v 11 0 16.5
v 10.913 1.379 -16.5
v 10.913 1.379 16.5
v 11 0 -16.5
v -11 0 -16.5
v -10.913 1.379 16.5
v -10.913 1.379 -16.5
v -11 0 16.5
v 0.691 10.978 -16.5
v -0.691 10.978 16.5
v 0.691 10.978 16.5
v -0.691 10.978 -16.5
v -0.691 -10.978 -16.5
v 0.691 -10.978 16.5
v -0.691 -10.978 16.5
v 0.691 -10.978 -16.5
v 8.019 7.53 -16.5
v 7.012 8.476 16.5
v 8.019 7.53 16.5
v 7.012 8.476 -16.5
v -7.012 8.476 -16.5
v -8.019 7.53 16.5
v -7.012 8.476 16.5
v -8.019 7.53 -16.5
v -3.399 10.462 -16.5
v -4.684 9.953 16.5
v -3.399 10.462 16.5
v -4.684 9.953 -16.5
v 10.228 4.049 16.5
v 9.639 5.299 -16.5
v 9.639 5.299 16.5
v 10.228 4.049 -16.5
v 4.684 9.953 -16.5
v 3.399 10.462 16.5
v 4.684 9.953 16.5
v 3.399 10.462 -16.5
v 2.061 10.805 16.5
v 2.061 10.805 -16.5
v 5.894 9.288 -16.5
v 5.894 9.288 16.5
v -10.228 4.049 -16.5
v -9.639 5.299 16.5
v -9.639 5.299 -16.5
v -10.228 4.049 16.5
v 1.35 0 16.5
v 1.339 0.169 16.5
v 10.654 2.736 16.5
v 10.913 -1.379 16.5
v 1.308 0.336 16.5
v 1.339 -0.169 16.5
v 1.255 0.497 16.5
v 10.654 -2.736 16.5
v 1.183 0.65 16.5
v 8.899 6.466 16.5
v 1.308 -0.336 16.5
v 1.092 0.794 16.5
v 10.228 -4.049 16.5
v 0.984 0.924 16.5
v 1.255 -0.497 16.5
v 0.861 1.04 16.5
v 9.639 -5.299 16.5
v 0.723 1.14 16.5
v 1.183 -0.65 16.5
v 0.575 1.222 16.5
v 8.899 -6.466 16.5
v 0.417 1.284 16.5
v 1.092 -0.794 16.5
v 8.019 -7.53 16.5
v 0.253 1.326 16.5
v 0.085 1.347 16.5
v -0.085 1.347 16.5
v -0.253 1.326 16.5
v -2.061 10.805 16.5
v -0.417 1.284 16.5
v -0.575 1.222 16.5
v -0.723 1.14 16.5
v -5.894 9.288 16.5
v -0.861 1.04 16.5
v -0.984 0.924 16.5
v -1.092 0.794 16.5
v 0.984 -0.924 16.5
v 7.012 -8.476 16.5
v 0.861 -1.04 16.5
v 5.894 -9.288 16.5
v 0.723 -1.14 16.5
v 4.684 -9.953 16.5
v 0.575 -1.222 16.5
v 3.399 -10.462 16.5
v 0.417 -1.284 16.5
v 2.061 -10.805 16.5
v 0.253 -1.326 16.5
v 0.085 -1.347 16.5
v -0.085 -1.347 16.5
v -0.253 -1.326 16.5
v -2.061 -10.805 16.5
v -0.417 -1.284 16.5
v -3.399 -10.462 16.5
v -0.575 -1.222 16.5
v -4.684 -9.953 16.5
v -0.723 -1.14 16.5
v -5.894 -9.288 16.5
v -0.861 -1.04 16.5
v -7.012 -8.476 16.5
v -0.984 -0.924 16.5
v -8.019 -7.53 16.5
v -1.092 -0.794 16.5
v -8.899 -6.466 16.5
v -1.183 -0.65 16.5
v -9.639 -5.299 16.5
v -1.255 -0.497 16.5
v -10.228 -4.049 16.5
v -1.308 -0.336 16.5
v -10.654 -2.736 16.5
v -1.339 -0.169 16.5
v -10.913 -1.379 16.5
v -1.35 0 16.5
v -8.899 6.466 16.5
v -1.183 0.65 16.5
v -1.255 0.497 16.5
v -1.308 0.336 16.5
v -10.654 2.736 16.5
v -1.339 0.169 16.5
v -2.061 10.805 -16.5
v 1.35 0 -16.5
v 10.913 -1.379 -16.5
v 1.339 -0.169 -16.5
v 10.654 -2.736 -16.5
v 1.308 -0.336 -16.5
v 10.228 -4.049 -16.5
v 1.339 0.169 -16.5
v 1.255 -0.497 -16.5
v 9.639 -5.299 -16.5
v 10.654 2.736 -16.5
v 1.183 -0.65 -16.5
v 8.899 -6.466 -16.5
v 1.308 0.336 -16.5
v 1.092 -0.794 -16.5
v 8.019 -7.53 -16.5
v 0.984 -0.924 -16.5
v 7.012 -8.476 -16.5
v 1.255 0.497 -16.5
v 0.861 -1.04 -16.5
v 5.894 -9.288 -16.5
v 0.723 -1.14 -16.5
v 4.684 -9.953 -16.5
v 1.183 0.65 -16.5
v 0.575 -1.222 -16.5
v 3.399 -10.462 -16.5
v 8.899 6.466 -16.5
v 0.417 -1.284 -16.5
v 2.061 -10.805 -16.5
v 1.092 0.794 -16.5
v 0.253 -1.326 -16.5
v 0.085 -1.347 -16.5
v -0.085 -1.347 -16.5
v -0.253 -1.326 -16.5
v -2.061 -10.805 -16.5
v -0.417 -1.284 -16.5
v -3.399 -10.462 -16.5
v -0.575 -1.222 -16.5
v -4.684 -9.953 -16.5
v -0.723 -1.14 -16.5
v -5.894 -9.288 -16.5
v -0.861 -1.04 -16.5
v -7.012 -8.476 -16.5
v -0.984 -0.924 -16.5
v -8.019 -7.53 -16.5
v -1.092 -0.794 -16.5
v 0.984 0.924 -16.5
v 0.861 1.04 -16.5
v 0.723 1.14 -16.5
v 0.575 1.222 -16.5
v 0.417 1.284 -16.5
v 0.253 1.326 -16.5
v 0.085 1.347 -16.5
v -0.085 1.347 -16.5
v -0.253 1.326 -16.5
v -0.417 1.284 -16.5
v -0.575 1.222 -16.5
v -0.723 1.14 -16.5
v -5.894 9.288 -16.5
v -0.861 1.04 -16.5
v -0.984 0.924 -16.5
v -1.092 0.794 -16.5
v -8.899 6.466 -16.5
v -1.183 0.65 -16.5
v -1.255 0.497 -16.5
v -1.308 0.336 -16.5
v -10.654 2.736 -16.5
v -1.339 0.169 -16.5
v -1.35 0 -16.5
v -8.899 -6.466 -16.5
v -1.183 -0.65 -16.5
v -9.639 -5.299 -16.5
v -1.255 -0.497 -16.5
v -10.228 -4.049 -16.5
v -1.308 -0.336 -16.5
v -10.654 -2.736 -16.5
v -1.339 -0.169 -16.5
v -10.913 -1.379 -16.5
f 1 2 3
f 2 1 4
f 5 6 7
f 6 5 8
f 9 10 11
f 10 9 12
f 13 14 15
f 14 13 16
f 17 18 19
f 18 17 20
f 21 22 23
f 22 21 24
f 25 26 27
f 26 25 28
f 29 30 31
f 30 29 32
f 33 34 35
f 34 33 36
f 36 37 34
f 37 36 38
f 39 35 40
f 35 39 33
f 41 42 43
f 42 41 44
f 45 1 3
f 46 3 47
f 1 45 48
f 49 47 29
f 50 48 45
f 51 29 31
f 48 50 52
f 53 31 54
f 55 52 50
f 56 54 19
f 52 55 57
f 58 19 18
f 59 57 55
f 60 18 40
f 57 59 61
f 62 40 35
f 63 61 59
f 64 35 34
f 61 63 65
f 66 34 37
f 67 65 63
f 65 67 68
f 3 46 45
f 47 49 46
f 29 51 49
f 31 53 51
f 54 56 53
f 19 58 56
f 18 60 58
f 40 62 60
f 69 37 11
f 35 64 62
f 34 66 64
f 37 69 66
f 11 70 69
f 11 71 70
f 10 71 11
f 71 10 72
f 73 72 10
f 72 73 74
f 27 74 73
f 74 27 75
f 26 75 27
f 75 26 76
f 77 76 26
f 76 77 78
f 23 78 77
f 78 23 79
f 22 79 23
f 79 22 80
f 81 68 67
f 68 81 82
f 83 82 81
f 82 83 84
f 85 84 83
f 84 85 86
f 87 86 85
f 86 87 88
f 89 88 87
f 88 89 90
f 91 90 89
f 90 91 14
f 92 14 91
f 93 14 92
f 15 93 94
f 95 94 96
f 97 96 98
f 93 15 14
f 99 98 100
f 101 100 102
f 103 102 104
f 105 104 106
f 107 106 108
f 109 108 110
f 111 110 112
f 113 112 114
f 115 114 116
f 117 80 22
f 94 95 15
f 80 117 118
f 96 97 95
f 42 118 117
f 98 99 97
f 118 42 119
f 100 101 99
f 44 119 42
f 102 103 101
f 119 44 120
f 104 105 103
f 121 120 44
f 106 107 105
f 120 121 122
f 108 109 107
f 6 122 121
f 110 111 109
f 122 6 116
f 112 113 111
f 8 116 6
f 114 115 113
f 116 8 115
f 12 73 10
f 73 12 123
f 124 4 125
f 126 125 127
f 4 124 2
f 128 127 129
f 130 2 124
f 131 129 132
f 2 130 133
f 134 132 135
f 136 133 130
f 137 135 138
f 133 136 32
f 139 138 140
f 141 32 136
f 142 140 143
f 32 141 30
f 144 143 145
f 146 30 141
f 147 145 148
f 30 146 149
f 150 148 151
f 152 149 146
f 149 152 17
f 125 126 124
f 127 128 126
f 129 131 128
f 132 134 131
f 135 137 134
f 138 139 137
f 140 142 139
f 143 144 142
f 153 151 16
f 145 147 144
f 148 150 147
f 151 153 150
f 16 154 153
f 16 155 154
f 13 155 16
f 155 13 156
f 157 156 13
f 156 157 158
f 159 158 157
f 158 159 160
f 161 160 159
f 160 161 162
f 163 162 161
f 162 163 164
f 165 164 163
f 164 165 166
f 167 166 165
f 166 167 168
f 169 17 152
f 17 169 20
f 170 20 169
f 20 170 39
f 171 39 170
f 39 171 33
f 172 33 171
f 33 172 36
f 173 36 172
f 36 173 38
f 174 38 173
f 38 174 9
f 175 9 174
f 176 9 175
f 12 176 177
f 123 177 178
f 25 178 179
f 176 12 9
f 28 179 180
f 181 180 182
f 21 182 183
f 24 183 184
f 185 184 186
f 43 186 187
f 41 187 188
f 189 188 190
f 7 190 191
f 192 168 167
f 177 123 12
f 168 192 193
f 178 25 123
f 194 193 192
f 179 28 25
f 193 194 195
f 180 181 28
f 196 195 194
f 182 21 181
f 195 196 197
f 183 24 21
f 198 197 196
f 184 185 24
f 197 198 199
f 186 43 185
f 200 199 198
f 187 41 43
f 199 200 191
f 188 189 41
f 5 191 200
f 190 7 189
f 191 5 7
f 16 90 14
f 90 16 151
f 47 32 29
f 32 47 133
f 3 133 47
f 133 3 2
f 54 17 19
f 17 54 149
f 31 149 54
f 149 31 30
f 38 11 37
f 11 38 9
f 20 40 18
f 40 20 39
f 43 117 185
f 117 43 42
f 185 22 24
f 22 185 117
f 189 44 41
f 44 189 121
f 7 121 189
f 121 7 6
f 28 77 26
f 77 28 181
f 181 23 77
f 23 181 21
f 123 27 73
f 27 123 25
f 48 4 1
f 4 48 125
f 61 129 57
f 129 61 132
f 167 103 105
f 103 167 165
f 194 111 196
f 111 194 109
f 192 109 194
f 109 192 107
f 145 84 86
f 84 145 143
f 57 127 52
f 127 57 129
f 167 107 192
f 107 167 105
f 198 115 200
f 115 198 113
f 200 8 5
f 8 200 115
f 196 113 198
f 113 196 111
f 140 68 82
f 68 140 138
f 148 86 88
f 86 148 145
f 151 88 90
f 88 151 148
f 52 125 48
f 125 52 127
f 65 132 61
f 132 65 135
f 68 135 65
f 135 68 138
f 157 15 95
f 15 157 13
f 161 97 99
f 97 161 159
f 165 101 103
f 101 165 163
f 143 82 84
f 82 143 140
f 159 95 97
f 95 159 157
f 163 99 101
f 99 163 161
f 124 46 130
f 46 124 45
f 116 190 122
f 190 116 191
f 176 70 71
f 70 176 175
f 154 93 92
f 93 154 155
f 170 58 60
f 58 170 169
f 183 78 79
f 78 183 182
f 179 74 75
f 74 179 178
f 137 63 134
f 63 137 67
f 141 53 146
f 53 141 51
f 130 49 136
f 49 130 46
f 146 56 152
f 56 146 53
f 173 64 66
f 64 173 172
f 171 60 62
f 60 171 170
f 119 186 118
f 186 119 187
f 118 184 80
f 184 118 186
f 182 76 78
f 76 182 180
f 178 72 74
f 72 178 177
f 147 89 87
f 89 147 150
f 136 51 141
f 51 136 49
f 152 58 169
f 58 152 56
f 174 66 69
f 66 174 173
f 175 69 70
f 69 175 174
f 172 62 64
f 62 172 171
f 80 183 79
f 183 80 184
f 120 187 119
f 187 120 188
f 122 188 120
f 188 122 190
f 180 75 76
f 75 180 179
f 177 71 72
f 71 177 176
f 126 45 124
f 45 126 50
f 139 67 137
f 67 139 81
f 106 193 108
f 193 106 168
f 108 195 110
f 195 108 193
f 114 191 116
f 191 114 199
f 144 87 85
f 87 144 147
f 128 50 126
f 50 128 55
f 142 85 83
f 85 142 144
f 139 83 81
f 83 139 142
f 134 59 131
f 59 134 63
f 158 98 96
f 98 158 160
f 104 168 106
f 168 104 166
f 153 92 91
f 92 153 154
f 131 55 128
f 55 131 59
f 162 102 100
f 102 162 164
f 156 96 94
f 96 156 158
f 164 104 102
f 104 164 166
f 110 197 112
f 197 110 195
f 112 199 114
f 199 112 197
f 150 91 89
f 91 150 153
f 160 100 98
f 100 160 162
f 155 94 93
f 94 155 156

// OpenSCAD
$fn = 50;


difference() {
	union() {
		translate(v = [0, 0, -16.5000000000]) {
			cylinder(h = 33, r = 11.0000000000);
		}
	}
	union() {
		translate(v = [0, 0, -100.0000000000]) {
			cylinder(h = 200, r = 1.3500000000);
		}
	}
}
